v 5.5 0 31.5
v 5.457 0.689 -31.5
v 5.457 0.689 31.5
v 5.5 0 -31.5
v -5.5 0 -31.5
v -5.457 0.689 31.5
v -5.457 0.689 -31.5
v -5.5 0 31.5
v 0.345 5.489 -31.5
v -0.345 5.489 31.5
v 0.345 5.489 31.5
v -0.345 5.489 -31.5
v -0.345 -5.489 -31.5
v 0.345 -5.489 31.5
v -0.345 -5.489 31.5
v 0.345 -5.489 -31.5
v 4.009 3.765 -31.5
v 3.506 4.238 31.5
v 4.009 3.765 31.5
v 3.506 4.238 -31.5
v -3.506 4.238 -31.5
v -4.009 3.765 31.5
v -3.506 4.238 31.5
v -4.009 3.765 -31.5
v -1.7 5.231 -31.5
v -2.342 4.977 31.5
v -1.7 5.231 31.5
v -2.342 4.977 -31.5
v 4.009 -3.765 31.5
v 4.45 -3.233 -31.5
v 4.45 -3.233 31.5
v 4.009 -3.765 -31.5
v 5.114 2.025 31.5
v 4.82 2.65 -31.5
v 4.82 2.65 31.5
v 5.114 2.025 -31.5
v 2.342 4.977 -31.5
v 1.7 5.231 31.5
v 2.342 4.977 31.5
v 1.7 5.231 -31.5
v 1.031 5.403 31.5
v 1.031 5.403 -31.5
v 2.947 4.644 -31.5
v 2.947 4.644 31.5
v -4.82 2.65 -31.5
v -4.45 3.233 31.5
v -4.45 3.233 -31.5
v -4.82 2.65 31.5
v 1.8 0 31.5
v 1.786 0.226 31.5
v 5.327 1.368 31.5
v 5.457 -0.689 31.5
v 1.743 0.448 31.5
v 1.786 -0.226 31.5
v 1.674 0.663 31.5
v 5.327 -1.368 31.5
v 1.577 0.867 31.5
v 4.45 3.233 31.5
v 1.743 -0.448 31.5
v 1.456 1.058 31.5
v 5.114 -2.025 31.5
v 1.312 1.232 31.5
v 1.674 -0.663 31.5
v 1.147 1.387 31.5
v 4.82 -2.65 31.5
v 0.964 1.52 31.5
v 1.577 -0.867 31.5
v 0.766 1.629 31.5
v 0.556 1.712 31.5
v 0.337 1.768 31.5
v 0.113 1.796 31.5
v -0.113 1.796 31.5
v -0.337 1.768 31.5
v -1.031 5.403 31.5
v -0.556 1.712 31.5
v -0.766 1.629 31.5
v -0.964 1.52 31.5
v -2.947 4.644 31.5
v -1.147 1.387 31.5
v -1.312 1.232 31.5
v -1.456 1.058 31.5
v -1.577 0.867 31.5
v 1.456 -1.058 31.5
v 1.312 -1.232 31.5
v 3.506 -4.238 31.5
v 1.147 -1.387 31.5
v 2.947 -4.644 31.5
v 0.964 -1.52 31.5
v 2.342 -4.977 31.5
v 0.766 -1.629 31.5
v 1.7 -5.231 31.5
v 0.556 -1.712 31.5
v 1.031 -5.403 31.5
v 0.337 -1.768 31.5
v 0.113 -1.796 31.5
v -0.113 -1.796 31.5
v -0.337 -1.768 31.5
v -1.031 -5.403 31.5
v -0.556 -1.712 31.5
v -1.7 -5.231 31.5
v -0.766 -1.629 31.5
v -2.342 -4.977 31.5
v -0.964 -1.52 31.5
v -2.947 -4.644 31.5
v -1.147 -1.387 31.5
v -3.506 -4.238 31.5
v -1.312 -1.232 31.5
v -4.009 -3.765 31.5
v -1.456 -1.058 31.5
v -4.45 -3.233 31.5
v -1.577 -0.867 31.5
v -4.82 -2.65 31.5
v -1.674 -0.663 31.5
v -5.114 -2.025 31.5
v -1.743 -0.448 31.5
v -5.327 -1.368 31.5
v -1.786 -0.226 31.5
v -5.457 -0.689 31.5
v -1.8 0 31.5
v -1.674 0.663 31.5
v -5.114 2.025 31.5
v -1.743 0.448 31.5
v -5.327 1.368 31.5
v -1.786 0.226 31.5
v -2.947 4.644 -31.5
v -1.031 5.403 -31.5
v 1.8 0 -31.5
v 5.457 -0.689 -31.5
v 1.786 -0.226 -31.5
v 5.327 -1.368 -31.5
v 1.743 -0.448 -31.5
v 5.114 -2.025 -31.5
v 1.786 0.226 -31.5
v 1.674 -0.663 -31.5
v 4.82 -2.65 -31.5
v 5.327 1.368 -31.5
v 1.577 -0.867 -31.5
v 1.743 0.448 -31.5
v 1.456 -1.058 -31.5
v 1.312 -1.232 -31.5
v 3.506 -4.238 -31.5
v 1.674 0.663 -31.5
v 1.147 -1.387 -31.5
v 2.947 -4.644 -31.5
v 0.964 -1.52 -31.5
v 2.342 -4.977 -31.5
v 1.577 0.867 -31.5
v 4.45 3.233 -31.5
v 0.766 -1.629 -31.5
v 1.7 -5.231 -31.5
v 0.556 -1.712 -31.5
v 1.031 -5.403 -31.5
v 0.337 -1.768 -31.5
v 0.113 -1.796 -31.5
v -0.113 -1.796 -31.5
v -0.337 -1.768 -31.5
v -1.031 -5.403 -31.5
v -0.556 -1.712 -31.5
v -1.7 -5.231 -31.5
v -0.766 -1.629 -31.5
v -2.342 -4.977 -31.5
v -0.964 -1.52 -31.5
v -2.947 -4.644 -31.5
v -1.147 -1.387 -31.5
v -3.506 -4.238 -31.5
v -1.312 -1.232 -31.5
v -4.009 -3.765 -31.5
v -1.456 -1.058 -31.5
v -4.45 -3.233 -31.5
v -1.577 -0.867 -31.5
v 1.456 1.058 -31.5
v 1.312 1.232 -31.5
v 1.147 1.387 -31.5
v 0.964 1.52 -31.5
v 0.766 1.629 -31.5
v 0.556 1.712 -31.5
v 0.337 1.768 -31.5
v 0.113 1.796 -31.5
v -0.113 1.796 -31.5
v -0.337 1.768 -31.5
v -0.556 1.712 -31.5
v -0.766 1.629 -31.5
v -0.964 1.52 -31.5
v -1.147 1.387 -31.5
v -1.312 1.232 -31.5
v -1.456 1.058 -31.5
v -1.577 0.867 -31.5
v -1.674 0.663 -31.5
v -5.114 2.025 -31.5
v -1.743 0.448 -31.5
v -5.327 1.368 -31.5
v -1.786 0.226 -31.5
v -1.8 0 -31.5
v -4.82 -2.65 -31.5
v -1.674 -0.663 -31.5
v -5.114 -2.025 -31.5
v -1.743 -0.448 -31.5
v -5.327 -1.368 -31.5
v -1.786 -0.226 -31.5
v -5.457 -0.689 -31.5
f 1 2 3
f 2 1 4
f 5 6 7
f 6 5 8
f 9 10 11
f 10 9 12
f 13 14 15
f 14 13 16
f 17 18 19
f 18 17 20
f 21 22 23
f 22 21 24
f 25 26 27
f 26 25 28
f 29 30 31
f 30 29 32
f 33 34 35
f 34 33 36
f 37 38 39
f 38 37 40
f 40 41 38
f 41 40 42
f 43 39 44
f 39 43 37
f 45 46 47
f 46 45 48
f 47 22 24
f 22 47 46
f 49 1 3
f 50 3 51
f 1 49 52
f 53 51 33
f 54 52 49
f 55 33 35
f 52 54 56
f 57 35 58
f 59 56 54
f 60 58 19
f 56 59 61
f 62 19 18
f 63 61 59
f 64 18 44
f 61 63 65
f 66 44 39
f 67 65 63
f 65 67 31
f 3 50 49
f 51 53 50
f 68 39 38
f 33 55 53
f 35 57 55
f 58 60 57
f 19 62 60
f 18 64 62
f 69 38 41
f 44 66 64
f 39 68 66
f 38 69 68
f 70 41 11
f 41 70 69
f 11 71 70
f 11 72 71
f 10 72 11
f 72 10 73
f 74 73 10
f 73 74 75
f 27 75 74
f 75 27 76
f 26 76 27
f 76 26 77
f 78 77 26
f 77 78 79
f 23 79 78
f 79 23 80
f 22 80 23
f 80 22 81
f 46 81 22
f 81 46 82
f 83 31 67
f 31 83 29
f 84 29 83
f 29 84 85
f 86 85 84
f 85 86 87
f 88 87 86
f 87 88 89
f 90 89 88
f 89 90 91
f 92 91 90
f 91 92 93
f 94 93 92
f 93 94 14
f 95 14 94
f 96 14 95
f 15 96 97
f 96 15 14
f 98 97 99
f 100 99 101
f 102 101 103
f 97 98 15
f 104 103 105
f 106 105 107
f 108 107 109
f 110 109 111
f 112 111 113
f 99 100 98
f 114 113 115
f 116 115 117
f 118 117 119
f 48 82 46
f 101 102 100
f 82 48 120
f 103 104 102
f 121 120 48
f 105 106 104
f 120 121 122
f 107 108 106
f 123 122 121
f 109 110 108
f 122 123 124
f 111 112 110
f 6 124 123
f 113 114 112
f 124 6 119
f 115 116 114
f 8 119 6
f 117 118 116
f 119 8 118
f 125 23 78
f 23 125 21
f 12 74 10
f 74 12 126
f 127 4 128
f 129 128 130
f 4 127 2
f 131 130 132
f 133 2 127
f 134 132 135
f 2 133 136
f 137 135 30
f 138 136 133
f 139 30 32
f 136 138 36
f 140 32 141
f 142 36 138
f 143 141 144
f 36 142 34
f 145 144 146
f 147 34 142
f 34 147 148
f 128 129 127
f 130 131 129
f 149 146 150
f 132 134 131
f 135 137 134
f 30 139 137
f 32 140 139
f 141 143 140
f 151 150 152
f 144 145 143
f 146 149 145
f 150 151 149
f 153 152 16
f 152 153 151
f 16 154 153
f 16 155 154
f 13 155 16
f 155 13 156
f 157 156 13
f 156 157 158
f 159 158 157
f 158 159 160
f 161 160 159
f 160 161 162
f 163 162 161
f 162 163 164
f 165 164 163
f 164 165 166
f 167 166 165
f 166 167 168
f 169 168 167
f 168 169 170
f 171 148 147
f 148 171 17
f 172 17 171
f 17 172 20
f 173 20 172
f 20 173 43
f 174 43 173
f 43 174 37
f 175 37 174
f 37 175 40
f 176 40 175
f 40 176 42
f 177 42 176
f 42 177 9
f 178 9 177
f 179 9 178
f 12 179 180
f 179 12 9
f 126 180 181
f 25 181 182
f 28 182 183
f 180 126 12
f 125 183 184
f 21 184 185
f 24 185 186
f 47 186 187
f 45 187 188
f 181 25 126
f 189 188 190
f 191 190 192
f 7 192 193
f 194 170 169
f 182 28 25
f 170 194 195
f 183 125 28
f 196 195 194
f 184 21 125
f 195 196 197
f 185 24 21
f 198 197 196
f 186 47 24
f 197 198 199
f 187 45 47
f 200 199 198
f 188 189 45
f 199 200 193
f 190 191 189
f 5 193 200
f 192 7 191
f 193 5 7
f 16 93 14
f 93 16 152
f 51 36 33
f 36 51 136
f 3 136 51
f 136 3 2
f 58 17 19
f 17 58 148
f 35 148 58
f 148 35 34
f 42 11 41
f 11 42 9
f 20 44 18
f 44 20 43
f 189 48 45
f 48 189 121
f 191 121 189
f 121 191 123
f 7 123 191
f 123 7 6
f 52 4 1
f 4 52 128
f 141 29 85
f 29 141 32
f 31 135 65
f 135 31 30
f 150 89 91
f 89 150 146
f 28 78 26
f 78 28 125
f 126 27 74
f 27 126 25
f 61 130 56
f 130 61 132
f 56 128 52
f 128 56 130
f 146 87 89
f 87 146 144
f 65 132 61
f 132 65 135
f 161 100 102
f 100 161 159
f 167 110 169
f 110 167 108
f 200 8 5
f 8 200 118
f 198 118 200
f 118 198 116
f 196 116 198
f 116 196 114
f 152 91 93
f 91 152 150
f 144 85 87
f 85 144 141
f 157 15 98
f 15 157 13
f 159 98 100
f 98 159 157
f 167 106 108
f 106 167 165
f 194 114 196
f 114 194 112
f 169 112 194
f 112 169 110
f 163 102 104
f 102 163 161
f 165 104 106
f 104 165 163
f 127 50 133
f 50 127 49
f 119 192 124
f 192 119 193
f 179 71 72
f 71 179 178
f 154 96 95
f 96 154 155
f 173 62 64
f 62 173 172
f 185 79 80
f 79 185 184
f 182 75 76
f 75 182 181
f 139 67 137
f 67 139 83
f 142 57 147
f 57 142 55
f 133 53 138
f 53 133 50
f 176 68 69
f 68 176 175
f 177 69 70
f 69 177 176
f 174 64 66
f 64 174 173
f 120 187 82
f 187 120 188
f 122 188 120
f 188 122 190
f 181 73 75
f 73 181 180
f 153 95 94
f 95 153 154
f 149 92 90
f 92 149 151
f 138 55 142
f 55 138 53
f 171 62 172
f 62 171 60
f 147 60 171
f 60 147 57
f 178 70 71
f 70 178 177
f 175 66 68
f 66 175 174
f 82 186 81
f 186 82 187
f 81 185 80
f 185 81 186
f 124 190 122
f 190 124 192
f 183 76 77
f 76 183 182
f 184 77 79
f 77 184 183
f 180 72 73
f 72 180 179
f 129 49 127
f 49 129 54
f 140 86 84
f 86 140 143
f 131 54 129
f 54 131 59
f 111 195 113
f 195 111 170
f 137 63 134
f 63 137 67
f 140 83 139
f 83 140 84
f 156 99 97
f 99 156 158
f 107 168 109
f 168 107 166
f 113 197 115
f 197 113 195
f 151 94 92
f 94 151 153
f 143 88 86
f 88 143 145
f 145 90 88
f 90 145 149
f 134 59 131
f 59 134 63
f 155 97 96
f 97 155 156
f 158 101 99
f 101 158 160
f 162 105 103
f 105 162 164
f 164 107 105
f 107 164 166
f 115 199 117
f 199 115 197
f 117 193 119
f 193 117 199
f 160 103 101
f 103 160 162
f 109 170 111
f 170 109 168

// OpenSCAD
$fn = 50;


difference() {
	union() {
		translate(v = [0, 0, -31.5000000000]) {
			cylinder(h = 63, r = 5.5000000000);
		}
	}
	union() {
		translate(v = [0, 0, -100.0000000000]) {
			cylinder(h = 200, r = 1.8000000000);
		}
	}
}
